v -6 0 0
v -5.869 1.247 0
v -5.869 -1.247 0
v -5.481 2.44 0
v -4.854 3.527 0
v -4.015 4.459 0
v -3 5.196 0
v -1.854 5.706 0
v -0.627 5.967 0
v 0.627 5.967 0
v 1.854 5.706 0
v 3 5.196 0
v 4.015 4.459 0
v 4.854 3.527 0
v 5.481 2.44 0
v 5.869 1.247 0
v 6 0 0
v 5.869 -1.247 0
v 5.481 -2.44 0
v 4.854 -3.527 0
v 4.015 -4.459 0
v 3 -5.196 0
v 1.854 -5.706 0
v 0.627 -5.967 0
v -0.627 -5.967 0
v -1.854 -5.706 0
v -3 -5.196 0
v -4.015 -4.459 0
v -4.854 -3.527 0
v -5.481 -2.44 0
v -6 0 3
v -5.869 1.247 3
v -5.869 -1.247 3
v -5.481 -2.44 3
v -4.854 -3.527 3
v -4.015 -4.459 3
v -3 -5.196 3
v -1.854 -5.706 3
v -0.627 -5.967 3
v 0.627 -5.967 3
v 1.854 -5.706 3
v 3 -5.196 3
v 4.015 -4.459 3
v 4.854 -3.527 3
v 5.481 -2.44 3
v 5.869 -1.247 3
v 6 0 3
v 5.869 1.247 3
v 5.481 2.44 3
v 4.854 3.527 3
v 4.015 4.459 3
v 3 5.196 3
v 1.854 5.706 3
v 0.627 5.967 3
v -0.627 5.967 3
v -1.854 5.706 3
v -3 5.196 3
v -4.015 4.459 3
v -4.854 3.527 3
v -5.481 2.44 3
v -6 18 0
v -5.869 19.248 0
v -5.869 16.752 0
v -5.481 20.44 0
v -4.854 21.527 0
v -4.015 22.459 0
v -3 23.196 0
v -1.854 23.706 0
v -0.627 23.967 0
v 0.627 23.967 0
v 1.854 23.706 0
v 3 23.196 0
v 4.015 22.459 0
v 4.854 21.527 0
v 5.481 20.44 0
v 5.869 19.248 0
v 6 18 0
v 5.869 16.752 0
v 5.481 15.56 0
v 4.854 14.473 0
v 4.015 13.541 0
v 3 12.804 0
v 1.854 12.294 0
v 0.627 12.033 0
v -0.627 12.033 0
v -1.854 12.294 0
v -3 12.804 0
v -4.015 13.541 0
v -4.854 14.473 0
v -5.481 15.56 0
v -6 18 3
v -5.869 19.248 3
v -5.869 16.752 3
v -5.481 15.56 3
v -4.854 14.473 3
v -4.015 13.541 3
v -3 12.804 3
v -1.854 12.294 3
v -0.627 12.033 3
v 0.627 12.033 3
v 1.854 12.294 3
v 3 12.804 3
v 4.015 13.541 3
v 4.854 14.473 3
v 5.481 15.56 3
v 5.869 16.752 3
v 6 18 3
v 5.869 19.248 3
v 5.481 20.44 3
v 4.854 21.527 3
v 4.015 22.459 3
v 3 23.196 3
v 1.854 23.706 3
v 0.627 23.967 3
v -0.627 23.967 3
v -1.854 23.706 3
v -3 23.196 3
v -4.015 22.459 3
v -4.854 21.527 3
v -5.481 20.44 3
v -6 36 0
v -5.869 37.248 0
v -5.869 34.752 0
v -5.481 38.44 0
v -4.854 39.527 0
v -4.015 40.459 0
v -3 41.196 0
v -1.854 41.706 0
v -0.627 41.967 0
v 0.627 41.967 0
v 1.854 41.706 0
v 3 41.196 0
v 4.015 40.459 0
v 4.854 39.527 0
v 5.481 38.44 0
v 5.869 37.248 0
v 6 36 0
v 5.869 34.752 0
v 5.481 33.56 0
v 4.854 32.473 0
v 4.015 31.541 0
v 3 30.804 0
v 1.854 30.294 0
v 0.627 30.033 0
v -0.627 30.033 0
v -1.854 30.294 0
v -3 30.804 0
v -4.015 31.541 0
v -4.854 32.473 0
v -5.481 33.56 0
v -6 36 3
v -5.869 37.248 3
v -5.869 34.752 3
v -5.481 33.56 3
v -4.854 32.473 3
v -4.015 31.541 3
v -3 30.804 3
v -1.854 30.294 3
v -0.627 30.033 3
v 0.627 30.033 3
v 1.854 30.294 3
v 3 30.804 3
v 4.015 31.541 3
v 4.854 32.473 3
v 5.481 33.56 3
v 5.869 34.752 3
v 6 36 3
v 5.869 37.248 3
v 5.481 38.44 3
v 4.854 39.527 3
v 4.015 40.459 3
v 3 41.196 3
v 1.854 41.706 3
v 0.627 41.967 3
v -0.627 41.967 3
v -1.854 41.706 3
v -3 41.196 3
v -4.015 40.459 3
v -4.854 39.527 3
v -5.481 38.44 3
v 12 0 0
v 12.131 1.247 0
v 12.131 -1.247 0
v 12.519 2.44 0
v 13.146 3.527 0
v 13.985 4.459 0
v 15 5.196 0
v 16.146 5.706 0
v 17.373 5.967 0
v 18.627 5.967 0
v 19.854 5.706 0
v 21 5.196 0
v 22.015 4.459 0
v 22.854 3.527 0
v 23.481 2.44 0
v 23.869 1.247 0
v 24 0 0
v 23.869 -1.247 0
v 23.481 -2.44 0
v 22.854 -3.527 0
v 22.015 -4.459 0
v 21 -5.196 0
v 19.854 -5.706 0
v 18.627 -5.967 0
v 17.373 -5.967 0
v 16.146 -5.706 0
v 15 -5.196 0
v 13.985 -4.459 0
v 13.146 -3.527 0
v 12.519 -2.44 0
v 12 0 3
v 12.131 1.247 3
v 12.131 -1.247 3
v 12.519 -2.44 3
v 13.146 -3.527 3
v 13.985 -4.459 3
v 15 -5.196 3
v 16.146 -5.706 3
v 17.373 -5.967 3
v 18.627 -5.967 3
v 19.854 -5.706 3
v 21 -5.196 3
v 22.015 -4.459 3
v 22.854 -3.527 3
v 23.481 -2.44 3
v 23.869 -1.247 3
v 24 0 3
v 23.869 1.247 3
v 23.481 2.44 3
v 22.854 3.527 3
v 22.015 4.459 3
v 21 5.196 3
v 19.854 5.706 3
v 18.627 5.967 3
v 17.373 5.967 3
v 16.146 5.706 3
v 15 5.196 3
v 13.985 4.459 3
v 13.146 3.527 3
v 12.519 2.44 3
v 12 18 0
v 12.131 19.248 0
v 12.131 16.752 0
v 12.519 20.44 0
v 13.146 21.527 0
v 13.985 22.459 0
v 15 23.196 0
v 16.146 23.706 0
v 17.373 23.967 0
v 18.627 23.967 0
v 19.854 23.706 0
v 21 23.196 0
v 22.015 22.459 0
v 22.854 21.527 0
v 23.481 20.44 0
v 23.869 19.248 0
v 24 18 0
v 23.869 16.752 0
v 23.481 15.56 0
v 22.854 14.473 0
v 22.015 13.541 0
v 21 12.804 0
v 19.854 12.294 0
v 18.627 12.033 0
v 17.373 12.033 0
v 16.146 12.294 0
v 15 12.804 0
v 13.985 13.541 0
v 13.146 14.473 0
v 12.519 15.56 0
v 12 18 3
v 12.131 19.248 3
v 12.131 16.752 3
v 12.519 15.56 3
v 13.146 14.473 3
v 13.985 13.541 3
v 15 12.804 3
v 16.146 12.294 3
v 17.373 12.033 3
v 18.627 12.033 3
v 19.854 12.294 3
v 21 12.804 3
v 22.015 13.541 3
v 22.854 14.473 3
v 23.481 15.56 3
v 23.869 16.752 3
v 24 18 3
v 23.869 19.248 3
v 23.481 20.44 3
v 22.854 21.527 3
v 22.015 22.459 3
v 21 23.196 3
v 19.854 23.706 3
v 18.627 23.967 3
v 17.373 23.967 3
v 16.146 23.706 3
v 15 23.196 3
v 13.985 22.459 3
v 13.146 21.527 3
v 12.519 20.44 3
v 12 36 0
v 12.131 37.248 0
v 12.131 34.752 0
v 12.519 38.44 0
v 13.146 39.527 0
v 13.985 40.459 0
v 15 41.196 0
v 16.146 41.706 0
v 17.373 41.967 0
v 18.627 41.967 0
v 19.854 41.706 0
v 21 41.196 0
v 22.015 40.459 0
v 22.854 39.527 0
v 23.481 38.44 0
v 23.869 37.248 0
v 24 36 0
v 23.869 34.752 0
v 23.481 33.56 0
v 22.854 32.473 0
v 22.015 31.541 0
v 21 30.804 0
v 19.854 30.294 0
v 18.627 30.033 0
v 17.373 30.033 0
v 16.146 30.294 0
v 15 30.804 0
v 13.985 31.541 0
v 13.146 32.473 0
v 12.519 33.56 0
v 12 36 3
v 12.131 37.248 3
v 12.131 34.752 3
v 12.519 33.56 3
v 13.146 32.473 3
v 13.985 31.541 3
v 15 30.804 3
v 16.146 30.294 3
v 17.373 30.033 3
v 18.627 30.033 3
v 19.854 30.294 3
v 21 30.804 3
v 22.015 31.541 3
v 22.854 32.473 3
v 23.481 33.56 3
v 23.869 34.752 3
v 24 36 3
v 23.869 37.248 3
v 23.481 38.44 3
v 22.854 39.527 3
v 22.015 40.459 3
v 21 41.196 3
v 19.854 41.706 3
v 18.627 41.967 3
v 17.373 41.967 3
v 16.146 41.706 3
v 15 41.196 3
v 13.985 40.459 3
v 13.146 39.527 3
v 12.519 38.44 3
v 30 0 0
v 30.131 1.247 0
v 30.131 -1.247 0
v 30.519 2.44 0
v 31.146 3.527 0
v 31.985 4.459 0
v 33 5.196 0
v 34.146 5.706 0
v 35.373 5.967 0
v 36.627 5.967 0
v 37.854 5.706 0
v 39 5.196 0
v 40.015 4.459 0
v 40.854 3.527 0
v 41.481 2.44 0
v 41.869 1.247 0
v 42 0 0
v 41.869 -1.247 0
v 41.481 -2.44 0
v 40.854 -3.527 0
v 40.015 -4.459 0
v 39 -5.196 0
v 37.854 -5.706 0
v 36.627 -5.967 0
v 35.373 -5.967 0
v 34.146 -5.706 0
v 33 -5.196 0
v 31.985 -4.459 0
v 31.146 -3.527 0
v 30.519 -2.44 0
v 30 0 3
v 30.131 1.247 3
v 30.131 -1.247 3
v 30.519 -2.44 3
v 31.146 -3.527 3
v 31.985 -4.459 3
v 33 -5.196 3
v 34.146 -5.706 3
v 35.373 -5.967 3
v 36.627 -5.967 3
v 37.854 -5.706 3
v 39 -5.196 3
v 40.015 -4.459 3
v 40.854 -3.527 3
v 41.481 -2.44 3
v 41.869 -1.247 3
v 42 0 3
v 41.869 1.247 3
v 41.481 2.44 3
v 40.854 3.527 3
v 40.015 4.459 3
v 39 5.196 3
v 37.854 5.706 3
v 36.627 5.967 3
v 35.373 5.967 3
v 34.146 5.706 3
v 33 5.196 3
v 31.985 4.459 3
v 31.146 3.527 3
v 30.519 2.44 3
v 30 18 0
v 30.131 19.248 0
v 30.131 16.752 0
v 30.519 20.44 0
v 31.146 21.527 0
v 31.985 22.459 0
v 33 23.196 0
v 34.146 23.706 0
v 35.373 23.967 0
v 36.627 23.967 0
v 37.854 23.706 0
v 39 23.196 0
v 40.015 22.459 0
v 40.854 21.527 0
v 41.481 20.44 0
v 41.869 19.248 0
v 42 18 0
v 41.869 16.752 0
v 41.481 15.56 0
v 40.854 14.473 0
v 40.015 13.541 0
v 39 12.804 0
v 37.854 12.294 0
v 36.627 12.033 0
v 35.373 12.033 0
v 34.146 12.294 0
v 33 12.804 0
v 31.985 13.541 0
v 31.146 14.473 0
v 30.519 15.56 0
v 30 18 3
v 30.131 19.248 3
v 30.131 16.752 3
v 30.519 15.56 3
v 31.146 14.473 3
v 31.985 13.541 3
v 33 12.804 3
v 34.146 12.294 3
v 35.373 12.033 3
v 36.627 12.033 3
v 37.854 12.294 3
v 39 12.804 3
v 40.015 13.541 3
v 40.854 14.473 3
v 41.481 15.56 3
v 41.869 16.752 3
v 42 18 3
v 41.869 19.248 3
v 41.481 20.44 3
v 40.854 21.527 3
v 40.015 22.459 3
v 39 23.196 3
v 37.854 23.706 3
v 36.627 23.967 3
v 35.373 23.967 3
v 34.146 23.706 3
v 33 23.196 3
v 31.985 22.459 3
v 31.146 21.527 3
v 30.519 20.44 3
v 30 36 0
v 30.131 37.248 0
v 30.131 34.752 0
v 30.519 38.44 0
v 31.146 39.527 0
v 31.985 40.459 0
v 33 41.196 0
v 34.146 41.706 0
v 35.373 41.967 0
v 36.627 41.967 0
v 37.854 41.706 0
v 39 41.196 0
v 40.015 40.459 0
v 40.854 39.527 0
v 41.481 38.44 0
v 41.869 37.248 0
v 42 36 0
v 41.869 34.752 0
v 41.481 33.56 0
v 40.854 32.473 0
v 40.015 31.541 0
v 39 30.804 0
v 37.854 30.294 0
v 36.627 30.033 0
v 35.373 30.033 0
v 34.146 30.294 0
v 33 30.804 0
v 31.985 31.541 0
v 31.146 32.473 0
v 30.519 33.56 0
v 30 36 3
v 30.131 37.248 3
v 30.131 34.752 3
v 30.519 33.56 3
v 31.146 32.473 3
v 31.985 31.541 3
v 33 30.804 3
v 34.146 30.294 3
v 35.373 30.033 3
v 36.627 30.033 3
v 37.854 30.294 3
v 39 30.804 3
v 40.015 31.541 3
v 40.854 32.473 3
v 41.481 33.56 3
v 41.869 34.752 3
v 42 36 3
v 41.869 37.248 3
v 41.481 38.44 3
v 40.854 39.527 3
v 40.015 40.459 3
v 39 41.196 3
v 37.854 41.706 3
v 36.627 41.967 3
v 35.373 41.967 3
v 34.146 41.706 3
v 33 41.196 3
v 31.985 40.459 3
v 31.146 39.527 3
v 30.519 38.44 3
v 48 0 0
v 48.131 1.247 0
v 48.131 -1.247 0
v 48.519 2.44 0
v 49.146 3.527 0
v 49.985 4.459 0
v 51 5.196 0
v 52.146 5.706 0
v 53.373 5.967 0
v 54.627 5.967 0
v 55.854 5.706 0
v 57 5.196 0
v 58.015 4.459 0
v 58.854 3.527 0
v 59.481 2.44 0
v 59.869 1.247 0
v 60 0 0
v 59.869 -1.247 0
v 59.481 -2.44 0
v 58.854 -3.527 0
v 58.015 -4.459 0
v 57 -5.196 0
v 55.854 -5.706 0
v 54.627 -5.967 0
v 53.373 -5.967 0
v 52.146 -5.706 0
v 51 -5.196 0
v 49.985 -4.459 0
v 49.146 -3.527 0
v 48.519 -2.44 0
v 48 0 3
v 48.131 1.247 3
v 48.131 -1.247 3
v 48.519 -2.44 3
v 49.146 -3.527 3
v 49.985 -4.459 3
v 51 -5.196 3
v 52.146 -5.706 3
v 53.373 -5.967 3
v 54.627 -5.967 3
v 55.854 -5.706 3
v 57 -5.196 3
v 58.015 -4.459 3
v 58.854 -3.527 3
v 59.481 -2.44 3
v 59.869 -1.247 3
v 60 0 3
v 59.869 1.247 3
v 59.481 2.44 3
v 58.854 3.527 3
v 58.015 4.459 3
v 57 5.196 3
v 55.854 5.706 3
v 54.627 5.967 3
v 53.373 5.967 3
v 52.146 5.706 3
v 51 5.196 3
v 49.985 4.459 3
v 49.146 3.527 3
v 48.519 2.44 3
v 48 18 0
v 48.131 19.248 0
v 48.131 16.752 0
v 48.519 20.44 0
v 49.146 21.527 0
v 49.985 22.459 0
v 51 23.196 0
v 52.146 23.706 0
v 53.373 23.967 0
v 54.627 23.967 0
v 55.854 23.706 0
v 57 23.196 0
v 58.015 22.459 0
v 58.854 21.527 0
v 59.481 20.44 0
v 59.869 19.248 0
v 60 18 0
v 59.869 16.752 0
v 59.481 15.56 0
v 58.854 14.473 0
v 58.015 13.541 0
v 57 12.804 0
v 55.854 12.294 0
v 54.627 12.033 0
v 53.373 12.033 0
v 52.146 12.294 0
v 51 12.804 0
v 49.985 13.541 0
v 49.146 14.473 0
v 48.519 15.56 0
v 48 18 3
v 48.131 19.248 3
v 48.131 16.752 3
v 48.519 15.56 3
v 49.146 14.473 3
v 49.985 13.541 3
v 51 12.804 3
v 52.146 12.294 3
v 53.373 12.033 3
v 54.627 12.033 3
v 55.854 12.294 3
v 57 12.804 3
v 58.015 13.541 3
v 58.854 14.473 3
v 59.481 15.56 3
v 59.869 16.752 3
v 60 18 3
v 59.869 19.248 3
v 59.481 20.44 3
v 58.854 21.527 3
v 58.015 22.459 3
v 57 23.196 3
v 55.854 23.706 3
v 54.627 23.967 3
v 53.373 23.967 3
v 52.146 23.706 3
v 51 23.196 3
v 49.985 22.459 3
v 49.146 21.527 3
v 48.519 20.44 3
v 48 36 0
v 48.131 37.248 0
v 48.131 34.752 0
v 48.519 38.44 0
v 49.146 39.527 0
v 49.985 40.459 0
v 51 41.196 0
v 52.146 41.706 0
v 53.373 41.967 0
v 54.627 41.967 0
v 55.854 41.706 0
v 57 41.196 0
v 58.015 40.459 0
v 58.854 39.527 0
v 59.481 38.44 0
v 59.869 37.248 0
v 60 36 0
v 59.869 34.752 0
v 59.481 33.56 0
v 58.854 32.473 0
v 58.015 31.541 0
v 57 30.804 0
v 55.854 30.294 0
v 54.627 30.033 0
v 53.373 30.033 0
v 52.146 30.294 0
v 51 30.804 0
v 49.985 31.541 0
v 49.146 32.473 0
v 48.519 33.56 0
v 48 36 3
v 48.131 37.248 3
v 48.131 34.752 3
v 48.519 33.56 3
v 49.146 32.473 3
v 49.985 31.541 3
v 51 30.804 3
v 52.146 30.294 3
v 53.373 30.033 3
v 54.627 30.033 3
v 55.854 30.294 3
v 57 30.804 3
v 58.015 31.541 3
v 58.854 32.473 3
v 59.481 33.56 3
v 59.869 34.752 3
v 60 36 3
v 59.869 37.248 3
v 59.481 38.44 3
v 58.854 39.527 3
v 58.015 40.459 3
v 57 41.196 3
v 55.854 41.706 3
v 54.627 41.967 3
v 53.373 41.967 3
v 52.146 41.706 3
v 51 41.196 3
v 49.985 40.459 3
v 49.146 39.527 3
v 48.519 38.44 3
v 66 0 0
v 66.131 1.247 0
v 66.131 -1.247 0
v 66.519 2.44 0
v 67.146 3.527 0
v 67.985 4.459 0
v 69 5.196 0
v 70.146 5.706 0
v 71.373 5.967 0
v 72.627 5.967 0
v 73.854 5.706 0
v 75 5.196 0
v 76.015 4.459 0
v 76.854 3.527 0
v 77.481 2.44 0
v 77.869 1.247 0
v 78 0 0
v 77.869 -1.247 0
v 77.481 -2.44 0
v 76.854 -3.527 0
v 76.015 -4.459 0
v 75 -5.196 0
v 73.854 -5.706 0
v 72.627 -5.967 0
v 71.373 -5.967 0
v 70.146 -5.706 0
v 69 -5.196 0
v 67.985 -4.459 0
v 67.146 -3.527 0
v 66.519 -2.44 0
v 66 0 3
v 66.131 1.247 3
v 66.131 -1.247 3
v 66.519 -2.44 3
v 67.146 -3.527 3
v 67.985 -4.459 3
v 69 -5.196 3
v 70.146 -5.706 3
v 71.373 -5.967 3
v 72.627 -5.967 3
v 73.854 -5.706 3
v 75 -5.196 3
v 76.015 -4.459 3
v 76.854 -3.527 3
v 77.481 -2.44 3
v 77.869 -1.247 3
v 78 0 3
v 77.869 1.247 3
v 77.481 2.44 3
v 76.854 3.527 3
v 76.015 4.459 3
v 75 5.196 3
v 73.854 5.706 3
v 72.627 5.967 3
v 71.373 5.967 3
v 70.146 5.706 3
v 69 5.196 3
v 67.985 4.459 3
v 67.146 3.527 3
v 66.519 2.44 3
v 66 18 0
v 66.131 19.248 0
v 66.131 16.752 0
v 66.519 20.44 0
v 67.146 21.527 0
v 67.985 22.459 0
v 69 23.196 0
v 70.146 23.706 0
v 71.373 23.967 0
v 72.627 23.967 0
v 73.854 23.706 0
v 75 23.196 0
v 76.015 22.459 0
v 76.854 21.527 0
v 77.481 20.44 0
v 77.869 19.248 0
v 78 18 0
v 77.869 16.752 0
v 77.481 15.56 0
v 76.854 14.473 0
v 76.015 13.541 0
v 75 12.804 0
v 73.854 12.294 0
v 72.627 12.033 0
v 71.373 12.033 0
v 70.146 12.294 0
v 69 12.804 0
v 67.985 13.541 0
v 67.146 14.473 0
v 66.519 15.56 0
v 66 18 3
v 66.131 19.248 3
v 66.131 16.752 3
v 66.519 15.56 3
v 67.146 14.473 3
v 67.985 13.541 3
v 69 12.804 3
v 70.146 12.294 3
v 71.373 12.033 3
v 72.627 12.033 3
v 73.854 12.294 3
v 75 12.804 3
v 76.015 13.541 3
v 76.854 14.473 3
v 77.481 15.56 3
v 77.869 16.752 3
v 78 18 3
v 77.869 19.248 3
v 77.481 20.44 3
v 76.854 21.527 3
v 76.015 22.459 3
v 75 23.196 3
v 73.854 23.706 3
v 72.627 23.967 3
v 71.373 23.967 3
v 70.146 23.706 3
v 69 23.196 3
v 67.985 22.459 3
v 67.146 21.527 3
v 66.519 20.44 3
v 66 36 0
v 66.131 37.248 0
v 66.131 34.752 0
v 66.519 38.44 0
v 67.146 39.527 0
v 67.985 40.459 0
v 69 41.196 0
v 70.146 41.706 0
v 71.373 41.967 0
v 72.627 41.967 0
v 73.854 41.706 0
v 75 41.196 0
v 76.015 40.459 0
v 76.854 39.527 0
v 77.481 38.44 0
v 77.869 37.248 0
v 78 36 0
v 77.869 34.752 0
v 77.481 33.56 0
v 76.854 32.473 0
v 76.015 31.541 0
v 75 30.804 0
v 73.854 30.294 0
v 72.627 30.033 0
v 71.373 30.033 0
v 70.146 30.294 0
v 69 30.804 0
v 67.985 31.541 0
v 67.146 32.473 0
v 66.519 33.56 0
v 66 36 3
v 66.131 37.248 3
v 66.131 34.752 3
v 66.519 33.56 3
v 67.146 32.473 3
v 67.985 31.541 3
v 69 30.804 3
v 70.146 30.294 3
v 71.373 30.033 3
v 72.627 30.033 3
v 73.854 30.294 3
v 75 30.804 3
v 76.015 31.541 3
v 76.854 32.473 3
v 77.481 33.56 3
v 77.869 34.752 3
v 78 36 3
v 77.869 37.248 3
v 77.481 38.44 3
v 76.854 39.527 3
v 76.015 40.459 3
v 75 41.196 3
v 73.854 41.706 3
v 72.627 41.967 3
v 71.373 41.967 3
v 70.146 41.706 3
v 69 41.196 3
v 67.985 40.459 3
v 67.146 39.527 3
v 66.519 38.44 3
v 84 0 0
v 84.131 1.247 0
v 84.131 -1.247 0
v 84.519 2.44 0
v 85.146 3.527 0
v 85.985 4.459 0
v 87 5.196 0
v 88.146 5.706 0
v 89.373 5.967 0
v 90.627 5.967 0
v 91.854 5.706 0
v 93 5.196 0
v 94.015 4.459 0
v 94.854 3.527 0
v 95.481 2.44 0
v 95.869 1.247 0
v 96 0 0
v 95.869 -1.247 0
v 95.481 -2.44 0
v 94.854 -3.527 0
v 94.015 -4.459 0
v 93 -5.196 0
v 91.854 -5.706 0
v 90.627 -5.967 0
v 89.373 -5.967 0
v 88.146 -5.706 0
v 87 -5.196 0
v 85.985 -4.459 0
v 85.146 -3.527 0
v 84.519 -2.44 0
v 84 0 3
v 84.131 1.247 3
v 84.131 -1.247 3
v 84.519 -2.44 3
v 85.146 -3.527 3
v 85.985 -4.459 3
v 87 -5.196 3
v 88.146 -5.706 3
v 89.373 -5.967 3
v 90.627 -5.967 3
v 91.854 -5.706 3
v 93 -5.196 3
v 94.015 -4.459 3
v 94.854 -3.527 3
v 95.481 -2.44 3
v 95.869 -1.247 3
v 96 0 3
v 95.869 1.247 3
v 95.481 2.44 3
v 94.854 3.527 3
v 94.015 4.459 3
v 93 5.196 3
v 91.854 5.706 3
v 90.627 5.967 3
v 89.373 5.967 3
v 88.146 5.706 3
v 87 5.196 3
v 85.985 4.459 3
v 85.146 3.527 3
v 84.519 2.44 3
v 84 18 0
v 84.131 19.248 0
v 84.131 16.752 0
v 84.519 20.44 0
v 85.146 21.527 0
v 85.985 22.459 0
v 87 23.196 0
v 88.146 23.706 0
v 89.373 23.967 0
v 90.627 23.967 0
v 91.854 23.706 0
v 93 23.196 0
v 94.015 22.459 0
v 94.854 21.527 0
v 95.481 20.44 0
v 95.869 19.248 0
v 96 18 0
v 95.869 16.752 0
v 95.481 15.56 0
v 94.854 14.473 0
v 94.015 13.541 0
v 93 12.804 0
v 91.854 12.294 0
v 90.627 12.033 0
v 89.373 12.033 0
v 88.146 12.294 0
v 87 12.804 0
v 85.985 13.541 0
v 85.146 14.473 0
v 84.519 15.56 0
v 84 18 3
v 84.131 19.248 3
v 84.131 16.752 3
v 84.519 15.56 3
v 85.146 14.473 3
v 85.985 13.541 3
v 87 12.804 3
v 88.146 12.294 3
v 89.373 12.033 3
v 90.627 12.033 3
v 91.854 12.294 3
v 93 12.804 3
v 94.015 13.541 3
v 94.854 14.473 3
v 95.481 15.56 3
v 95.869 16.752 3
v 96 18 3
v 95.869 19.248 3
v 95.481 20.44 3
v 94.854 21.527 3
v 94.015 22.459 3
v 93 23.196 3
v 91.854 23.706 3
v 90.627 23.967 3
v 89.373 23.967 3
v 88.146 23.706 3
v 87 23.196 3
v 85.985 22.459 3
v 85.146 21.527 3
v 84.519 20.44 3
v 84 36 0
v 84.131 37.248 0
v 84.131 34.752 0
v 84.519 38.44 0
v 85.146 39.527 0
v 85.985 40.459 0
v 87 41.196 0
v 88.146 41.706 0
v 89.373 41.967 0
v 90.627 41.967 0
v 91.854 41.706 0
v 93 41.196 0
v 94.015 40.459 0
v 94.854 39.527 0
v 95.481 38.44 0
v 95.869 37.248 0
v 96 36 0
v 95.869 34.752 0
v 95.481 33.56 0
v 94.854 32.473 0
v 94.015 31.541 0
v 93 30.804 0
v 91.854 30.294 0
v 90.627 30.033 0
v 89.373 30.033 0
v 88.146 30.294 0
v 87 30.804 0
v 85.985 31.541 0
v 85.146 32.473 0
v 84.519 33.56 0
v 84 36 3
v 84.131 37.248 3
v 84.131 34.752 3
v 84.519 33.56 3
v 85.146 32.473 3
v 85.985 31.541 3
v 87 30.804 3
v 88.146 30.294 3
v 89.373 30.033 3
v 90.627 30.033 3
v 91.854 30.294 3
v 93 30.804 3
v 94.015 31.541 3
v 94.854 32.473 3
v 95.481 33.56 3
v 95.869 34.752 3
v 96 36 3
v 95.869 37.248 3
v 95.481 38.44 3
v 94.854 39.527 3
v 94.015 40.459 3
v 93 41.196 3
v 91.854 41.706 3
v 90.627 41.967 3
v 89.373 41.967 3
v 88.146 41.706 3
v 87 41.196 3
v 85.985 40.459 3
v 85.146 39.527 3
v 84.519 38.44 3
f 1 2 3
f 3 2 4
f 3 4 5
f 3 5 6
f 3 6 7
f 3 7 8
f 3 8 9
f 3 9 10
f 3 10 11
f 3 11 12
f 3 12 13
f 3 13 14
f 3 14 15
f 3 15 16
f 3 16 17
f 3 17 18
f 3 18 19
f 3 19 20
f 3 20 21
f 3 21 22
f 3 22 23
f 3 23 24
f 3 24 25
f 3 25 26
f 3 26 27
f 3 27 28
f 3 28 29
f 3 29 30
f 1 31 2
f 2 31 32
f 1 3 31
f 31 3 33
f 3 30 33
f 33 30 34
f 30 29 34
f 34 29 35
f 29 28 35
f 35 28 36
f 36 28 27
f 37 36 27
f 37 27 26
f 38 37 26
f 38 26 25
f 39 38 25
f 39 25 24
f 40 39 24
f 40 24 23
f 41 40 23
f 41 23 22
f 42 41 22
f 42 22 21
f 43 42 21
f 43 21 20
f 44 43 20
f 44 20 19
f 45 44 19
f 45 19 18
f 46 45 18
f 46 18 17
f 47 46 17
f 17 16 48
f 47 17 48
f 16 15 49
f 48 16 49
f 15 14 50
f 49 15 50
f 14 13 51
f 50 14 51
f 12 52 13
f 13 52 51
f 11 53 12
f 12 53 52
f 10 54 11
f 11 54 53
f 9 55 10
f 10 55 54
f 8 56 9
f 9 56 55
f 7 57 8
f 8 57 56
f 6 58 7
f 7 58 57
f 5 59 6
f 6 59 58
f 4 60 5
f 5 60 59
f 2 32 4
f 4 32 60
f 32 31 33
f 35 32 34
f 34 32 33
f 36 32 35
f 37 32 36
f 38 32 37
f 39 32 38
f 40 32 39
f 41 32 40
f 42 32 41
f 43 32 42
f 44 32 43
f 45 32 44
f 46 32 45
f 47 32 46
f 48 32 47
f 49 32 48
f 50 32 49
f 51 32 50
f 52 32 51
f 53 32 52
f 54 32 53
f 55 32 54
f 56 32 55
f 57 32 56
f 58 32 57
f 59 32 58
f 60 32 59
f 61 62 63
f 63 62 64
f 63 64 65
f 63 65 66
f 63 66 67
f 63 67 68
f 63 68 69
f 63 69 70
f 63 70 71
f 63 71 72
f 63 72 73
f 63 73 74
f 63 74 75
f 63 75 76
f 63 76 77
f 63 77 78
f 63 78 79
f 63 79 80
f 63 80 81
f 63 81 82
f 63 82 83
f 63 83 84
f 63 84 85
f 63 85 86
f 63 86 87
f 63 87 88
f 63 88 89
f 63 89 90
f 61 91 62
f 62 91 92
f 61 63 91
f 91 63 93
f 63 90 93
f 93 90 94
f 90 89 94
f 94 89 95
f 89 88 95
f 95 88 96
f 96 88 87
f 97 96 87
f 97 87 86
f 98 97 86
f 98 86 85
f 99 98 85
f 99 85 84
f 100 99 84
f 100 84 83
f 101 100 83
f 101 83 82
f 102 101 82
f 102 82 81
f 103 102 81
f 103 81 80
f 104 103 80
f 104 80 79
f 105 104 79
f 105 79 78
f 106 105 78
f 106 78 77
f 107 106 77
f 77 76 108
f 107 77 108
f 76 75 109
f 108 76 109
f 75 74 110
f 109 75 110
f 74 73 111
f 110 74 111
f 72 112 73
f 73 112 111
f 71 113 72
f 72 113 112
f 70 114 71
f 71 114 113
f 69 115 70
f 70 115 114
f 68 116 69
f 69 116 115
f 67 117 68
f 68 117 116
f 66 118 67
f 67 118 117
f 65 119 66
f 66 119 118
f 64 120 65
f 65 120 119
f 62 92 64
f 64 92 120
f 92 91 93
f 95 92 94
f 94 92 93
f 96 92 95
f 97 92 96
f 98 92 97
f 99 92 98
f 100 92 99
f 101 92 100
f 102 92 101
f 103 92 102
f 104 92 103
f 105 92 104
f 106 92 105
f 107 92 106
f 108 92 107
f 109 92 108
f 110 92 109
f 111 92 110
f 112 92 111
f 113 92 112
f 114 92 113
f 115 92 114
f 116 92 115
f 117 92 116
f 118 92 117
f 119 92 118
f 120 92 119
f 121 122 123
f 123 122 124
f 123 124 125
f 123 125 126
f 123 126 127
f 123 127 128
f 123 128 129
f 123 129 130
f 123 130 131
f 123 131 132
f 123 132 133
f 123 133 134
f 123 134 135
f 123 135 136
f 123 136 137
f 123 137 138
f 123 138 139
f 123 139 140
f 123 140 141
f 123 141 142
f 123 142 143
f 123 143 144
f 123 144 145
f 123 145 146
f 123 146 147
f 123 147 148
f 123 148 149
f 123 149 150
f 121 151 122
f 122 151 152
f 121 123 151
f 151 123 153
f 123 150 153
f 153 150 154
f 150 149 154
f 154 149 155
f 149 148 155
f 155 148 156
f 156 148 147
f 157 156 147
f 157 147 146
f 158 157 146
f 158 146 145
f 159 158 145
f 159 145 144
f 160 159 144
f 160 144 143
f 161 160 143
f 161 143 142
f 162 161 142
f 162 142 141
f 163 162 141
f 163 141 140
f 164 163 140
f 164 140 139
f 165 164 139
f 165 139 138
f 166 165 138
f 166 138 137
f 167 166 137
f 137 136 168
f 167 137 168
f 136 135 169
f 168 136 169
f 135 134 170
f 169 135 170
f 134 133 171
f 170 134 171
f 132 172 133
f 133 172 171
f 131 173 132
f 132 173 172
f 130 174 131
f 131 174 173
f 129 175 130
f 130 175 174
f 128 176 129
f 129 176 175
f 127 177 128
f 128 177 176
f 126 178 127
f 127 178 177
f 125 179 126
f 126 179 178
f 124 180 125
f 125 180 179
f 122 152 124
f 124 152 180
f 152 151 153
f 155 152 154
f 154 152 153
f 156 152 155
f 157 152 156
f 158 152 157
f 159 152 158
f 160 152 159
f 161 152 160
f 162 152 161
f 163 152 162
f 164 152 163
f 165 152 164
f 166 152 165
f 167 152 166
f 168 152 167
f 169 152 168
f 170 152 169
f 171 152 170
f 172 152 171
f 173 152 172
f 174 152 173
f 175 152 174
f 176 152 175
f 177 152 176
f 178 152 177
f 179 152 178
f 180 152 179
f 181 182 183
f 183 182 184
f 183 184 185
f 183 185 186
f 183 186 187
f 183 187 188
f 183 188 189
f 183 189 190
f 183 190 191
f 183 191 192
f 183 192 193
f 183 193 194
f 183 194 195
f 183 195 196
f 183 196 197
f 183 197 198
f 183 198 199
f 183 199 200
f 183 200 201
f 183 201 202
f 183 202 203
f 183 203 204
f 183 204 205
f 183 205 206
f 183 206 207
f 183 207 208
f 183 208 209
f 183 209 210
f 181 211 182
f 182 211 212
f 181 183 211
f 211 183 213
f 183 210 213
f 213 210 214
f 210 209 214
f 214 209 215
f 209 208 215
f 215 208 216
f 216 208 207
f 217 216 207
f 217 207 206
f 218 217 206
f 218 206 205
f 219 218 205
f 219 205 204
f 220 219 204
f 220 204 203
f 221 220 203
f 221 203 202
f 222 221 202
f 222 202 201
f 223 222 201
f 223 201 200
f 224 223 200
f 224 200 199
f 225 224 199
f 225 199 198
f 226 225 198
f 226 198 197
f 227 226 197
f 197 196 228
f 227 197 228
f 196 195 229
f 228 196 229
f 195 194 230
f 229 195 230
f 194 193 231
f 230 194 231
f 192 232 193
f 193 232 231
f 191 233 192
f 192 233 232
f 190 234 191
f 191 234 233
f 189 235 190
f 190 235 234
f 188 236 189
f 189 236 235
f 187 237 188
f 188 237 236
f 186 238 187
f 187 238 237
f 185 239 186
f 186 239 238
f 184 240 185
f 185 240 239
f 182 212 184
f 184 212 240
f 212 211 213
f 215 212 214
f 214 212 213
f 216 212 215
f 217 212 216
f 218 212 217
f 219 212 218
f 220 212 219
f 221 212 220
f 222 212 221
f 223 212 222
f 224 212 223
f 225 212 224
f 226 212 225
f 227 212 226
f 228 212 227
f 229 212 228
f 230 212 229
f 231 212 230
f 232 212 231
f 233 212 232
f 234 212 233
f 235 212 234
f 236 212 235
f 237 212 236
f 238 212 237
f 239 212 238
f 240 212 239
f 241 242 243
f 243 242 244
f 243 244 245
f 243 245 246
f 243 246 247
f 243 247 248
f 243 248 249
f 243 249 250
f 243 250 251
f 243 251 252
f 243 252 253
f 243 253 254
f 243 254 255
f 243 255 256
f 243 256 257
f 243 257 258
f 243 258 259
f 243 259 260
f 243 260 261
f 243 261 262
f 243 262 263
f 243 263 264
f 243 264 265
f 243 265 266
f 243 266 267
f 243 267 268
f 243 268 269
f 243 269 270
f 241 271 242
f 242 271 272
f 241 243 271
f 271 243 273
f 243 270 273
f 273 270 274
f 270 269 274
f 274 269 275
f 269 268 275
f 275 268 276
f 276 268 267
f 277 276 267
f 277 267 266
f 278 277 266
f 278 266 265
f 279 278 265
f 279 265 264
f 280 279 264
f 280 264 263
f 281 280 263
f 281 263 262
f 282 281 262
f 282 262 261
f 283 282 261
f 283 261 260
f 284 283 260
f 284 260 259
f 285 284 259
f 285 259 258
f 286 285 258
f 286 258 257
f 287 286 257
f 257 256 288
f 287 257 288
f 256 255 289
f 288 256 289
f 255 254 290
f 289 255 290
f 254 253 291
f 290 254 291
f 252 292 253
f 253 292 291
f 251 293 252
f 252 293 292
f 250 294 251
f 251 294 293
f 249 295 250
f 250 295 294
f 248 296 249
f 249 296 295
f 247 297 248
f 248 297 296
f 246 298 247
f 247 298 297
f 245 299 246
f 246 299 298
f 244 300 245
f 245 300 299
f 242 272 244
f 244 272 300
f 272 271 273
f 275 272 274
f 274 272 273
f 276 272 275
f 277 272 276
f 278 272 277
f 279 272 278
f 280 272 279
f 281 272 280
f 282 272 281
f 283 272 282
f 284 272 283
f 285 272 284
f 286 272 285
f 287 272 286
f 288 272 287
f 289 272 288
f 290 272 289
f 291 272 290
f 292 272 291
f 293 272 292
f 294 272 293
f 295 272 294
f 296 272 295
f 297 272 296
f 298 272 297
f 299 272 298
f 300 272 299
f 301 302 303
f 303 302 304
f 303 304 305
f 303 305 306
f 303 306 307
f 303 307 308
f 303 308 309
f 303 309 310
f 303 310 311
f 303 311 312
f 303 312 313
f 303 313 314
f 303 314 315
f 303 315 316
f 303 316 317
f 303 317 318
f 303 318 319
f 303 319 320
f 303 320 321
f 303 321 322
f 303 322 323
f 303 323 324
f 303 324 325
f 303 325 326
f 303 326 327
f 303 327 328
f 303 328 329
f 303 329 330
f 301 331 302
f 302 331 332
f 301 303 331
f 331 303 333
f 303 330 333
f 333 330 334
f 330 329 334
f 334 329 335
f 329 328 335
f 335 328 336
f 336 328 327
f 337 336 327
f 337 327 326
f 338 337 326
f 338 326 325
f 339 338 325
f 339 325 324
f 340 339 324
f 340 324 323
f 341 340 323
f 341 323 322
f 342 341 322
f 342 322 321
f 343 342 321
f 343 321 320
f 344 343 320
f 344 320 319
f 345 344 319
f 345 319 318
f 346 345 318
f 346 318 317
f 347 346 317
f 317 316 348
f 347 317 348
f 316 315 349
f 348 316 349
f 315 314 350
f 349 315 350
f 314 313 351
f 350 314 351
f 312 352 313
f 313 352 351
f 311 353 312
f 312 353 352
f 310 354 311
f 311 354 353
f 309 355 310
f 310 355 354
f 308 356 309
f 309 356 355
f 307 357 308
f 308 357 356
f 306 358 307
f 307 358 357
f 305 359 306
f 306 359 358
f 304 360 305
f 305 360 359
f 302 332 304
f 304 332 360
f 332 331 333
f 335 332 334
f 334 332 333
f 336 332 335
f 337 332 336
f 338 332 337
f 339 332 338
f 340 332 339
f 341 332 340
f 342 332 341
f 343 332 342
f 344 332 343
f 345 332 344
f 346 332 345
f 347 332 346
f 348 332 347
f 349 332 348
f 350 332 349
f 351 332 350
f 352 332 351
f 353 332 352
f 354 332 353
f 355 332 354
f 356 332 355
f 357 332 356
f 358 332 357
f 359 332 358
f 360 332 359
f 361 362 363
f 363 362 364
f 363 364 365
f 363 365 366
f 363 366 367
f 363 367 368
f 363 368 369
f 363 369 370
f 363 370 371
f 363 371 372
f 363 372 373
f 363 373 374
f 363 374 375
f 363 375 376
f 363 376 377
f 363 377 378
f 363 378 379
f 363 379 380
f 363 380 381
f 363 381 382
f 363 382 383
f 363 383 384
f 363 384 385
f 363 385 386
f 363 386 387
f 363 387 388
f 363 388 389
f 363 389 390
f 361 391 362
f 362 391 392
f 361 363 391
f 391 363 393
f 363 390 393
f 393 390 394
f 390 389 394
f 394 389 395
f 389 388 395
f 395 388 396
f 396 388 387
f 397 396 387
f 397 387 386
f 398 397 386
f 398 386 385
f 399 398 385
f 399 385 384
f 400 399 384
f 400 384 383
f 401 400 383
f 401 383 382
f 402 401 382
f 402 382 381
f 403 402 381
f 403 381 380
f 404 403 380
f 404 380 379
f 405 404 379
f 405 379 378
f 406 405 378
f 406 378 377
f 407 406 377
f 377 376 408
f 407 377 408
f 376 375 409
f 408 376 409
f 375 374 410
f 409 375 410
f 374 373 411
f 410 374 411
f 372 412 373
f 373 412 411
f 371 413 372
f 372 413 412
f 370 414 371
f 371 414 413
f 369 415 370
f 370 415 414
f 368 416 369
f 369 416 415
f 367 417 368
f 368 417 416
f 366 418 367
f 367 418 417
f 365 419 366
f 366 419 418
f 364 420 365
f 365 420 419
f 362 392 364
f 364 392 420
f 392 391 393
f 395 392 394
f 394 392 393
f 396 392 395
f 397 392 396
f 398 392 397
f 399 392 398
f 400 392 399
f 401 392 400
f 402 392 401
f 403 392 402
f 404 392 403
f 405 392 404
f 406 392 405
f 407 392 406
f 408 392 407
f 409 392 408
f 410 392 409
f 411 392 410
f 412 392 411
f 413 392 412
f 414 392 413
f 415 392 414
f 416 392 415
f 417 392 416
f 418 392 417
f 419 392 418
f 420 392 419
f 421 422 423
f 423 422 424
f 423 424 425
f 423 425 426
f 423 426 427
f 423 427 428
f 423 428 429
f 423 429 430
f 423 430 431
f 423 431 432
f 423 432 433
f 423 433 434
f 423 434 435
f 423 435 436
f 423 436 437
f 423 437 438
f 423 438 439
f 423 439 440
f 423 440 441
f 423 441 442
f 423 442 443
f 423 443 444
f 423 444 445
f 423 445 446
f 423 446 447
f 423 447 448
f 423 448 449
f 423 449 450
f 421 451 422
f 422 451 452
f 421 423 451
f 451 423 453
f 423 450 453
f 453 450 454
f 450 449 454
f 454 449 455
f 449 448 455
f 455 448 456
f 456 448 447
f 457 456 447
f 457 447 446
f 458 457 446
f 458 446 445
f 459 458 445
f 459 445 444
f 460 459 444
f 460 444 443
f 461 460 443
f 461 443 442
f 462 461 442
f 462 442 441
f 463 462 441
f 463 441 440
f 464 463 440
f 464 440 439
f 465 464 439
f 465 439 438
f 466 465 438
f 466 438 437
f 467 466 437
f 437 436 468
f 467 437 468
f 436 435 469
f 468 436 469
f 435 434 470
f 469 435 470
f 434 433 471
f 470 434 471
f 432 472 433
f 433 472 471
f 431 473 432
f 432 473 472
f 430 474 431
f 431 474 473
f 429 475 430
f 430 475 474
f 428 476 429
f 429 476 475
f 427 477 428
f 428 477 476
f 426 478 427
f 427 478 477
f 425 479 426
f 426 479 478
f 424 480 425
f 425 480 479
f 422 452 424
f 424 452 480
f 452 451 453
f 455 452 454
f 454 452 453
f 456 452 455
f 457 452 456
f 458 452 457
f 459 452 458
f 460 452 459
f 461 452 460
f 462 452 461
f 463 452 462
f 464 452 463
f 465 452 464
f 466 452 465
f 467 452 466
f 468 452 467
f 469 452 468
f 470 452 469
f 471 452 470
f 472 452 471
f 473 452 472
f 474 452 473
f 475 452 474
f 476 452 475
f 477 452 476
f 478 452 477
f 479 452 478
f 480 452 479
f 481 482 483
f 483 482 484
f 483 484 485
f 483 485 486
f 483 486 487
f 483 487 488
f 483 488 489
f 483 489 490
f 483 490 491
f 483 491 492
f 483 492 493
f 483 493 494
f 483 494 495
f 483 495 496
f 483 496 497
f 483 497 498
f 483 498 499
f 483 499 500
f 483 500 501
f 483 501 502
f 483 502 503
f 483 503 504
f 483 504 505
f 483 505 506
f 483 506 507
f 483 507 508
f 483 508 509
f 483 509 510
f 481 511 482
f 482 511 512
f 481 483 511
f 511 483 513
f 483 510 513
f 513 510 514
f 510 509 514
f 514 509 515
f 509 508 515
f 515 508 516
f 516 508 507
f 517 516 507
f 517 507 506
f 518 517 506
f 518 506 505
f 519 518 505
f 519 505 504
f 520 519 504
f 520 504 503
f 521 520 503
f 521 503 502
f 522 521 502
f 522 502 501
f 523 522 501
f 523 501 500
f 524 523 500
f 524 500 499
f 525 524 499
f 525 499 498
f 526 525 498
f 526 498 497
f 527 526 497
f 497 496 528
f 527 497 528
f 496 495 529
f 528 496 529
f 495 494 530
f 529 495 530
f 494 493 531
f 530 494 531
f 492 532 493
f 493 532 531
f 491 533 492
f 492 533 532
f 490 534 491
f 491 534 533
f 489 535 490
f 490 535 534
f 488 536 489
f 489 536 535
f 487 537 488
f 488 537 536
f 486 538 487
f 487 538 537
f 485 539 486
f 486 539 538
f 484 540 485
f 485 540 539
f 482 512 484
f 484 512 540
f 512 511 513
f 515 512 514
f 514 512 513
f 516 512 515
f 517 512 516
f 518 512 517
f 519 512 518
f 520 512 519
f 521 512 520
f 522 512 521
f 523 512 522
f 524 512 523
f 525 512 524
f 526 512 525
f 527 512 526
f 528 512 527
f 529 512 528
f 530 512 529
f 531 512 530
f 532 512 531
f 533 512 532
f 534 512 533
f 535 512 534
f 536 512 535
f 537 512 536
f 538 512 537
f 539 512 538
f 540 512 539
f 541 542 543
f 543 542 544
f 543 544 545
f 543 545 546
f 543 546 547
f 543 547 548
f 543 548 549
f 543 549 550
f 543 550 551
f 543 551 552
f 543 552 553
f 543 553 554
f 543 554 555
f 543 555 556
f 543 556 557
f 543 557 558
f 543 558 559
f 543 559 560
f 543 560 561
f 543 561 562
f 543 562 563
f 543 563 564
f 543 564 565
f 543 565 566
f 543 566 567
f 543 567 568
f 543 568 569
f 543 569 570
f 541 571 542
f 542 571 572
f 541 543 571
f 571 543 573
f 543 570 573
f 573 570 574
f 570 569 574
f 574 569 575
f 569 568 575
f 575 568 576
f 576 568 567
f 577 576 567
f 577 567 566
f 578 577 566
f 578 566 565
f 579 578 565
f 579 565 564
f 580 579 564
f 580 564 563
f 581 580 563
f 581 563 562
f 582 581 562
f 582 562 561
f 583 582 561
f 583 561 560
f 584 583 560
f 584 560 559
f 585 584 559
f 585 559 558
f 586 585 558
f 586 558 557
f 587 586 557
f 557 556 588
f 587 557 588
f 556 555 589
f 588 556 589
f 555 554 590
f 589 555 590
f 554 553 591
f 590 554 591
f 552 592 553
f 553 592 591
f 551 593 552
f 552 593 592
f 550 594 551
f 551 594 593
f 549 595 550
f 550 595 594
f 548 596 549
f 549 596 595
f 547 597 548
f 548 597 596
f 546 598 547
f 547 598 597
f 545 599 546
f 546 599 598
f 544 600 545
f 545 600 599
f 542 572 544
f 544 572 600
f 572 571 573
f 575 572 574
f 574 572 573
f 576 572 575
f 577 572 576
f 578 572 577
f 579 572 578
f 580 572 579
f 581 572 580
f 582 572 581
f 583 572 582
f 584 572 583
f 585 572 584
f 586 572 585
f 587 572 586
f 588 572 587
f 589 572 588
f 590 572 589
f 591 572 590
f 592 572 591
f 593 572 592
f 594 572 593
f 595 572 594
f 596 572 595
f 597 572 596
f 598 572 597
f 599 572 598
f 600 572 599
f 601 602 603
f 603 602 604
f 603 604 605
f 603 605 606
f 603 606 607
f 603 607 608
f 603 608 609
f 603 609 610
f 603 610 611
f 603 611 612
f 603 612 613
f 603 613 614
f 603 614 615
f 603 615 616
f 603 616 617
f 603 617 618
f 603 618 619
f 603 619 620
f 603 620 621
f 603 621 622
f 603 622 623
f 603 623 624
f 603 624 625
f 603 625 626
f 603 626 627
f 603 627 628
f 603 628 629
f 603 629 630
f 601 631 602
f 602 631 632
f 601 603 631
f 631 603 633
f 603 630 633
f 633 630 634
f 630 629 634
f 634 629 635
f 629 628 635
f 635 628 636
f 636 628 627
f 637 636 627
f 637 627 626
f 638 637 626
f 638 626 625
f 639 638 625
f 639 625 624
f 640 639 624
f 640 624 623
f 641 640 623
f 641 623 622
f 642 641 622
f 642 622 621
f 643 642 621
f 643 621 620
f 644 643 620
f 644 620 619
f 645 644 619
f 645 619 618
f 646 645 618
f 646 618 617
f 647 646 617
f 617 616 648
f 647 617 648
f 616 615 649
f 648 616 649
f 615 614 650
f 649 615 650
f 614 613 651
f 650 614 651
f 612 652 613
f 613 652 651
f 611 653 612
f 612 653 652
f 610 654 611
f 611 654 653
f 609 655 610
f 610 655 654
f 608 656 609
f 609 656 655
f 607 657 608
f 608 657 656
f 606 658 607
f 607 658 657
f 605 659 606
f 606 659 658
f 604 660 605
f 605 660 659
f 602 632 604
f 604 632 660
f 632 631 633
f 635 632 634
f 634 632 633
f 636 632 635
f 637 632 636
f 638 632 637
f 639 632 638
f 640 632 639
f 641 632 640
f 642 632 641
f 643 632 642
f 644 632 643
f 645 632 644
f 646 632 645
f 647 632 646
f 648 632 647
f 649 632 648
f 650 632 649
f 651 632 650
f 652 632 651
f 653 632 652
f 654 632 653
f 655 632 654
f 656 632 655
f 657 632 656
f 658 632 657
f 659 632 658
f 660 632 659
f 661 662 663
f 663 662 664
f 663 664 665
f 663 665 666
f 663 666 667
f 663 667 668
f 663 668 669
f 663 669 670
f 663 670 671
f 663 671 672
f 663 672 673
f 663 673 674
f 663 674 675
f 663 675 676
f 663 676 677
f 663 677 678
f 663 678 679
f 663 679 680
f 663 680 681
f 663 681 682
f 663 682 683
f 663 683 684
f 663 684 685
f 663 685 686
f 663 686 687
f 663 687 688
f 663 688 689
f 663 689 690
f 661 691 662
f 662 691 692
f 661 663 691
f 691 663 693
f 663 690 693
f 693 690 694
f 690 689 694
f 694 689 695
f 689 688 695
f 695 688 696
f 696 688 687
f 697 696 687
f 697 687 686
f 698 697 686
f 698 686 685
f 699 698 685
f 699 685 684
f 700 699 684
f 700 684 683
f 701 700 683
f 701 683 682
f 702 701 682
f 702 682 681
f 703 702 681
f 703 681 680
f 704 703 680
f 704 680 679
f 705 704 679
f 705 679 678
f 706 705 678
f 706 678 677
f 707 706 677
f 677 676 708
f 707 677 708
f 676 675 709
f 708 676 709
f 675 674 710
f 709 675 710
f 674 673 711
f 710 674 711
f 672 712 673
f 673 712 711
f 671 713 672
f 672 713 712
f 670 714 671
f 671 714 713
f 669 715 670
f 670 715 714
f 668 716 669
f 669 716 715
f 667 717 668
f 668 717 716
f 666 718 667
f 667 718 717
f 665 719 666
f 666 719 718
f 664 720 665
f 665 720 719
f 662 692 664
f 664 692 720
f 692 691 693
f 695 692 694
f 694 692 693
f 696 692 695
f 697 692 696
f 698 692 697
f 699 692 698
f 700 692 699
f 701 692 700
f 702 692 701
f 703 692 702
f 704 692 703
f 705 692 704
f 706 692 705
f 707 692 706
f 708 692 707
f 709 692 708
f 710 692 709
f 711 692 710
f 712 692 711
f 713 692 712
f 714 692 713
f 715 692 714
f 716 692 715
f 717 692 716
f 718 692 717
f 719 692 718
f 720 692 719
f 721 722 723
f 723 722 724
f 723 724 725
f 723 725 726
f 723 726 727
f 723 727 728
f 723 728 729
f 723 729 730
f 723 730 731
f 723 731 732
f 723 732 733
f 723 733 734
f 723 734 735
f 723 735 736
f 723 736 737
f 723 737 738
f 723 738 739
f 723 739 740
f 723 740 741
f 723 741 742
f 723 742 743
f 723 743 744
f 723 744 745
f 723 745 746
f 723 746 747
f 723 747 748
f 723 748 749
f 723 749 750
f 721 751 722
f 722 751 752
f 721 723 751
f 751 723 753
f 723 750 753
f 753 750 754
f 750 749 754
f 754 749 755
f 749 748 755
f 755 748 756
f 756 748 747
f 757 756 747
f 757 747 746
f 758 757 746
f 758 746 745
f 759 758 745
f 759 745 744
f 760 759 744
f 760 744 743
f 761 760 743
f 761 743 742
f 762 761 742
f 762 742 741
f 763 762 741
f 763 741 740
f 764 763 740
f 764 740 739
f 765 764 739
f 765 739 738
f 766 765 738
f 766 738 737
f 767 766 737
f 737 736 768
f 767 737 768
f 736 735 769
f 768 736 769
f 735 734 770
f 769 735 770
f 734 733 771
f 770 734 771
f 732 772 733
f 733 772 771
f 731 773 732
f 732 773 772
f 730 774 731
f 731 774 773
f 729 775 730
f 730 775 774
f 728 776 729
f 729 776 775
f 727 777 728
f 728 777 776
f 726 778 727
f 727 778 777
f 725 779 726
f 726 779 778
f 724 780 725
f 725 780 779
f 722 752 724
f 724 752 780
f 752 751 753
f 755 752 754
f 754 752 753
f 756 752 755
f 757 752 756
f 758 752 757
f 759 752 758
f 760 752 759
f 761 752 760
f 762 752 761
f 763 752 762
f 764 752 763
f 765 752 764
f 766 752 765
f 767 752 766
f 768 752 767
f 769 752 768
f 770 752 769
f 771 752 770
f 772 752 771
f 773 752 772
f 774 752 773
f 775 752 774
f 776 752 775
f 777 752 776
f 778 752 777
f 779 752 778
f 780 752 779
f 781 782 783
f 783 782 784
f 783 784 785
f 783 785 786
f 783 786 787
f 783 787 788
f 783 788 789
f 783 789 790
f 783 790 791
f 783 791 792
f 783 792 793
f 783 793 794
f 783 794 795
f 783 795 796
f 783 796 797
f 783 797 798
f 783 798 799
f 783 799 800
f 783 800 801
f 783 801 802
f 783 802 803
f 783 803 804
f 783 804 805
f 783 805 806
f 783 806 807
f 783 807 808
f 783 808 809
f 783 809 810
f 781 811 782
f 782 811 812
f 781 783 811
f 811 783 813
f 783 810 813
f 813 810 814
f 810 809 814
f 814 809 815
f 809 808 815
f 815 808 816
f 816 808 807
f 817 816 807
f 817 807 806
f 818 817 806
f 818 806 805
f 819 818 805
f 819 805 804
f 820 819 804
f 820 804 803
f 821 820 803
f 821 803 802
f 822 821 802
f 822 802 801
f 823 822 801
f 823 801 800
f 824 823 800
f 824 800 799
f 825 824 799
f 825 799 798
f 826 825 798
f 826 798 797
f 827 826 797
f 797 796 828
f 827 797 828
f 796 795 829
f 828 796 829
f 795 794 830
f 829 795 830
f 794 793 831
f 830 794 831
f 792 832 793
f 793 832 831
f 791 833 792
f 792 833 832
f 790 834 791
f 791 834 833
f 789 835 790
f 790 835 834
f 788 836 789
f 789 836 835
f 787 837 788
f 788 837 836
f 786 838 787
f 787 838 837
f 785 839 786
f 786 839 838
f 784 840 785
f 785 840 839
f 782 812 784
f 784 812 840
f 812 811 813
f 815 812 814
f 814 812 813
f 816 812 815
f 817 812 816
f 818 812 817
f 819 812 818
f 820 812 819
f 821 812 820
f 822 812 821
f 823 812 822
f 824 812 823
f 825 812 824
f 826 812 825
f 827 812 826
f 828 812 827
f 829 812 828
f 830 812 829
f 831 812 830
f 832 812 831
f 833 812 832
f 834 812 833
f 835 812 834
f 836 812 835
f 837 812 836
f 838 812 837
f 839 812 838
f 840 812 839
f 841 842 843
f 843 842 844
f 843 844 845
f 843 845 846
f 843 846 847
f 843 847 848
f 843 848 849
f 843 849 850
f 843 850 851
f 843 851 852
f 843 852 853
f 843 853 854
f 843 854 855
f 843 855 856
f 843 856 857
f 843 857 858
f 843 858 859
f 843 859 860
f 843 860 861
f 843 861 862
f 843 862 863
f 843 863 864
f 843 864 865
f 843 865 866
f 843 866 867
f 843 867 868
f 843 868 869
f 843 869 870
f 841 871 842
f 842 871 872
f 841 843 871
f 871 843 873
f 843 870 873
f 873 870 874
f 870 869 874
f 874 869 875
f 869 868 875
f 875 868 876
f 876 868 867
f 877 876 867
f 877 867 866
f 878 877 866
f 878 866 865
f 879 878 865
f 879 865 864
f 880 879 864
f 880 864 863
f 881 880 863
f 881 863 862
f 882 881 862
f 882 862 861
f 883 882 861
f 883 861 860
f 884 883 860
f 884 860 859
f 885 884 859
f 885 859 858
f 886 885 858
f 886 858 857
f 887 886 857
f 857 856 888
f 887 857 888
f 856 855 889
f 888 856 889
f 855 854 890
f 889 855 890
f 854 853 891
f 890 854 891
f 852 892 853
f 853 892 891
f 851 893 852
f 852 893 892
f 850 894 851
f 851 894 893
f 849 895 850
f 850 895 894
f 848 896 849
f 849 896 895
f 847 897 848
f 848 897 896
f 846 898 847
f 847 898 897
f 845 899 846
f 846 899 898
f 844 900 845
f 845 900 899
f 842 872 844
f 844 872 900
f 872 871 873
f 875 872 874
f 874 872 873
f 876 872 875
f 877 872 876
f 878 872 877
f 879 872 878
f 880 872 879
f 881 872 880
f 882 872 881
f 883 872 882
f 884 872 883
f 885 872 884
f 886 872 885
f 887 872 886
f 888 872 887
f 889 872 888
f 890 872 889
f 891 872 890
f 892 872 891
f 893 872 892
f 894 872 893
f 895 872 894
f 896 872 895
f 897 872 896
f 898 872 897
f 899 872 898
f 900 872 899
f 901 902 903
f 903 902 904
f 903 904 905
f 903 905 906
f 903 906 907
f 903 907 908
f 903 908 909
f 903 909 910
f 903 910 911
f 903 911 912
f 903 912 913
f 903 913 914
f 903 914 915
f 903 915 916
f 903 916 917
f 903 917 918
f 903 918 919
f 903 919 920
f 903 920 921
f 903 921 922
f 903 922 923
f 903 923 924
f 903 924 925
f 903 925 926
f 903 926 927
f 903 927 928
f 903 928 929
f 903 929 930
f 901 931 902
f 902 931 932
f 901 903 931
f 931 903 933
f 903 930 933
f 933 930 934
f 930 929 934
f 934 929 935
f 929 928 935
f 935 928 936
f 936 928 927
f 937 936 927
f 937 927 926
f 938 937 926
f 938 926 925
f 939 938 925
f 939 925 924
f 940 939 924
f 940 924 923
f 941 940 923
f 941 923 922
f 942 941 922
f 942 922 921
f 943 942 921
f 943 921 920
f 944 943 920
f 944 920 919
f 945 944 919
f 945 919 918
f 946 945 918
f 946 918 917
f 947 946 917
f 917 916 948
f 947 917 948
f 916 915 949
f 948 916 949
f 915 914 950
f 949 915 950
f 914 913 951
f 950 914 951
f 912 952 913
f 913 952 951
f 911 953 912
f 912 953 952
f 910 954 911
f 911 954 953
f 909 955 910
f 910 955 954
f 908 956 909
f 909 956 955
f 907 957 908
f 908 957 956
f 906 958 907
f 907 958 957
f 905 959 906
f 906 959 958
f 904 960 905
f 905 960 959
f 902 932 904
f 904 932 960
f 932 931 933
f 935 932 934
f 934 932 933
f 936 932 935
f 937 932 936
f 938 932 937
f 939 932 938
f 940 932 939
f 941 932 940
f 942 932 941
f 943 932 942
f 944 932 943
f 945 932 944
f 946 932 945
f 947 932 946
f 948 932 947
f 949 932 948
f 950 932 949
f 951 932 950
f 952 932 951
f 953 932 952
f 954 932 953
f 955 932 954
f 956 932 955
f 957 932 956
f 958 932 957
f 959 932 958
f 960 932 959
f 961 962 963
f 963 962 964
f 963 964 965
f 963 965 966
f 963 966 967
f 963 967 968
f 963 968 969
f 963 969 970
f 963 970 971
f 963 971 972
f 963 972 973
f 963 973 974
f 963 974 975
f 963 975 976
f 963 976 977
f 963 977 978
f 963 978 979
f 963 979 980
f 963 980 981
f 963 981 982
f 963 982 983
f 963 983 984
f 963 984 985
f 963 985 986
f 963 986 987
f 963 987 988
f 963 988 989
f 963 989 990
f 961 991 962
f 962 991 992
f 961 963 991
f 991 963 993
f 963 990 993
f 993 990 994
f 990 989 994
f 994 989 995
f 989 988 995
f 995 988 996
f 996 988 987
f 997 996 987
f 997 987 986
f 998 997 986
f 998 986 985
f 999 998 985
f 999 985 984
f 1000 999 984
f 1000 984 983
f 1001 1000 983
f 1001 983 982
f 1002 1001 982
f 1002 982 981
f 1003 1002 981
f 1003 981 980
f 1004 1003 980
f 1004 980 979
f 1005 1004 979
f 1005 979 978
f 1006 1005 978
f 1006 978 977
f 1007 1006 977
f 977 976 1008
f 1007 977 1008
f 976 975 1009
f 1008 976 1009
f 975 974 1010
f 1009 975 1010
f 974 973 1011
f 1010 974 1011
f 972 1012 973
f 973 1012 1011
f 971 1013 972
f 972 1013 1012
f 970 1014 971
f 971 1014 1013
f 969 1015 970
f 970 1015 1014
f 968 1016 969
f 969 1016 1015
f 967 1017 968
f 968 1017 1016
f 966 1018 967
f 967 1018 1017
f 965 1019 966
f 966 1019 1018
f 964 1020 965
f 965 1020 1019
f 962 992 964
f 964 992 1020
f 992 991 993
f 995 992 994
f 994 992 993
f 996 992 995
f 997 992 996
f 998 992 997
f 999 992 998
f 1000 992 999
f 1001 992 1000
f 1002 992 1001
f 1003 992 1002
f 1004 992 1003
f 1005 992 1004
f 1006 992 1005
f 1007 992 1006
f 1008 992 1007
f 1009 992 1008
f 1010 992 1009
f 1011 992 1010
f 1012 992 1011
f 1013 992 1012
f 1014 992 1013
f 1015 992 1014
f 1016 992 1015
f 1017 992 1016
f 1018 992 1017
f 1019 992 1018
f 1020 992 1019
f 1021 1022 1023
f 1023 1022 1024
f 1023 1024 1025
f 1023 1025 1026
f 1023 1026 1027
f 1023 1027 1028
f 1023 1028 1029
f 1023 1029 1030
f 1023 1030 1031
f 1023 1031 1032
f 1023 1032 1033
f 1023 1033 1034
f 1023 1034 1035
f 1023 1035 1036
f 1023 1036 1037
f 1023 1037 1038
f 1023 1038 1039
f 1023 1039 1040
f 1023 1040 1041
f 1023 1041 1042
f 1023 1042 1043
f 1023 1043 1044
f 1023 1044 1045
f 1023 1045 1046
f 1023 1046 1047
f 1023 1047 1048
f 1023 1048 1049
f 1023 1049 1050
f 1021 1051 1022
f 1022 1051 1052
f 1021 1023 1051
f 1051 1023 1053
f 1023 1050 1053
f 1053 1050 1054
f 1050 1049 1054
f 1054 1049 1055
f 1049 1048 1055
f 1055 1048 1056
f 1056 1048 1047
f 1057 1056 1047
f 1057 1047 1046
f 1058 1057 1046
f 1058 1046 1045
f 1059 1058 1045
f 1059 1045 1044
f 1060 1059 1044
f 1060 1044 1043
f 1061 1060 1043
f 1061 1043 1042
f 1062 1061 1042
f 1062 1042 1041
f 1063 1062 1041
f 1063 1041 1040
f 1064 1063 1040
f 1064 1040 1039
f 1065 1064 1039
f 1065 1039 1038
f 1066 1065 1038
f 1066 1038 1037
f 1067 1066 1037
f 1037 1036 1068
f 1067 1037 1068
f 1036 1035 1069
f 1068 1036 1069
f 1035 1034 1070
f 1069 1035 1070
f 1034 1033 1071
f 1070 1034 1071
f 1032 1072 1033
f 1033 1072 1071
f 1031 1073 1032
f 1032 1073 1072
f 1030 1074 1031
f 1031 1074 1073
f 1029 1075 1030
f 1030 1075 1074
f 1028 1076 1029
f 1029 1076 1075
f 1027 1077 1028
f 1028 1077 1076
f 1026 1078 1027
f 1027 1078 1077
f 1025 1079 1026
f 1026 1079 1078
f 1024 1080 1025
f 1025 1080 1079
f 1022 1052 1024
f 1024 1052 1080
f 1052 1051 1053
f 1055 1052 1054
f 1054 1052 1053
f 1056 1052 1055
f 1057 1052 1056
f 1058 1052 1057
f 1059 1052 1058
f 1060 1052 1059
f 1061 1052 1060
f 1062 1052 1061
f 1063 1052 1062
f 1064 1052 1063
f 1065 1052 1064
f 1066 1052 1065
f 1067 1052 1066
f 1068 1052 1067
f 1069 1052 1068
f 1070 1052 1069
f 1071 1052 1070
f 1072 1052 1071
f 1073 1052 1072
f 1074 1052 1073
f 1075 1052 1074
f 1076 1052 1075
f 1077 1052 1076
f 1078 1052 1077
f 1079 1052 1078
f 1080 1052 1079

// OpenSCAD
tokenRad = 6;
tokenHt  = 3;

for (i = [ 0 : 5 ] ) {
	for (j = [ 0 : 2 ]) {
		translate([3 * tokenRad * i, 3 * tokenRad * j, 0])
			cylinder(r=tokenRad, h=tokenHt,center=false,$fn=30);
	}
}
